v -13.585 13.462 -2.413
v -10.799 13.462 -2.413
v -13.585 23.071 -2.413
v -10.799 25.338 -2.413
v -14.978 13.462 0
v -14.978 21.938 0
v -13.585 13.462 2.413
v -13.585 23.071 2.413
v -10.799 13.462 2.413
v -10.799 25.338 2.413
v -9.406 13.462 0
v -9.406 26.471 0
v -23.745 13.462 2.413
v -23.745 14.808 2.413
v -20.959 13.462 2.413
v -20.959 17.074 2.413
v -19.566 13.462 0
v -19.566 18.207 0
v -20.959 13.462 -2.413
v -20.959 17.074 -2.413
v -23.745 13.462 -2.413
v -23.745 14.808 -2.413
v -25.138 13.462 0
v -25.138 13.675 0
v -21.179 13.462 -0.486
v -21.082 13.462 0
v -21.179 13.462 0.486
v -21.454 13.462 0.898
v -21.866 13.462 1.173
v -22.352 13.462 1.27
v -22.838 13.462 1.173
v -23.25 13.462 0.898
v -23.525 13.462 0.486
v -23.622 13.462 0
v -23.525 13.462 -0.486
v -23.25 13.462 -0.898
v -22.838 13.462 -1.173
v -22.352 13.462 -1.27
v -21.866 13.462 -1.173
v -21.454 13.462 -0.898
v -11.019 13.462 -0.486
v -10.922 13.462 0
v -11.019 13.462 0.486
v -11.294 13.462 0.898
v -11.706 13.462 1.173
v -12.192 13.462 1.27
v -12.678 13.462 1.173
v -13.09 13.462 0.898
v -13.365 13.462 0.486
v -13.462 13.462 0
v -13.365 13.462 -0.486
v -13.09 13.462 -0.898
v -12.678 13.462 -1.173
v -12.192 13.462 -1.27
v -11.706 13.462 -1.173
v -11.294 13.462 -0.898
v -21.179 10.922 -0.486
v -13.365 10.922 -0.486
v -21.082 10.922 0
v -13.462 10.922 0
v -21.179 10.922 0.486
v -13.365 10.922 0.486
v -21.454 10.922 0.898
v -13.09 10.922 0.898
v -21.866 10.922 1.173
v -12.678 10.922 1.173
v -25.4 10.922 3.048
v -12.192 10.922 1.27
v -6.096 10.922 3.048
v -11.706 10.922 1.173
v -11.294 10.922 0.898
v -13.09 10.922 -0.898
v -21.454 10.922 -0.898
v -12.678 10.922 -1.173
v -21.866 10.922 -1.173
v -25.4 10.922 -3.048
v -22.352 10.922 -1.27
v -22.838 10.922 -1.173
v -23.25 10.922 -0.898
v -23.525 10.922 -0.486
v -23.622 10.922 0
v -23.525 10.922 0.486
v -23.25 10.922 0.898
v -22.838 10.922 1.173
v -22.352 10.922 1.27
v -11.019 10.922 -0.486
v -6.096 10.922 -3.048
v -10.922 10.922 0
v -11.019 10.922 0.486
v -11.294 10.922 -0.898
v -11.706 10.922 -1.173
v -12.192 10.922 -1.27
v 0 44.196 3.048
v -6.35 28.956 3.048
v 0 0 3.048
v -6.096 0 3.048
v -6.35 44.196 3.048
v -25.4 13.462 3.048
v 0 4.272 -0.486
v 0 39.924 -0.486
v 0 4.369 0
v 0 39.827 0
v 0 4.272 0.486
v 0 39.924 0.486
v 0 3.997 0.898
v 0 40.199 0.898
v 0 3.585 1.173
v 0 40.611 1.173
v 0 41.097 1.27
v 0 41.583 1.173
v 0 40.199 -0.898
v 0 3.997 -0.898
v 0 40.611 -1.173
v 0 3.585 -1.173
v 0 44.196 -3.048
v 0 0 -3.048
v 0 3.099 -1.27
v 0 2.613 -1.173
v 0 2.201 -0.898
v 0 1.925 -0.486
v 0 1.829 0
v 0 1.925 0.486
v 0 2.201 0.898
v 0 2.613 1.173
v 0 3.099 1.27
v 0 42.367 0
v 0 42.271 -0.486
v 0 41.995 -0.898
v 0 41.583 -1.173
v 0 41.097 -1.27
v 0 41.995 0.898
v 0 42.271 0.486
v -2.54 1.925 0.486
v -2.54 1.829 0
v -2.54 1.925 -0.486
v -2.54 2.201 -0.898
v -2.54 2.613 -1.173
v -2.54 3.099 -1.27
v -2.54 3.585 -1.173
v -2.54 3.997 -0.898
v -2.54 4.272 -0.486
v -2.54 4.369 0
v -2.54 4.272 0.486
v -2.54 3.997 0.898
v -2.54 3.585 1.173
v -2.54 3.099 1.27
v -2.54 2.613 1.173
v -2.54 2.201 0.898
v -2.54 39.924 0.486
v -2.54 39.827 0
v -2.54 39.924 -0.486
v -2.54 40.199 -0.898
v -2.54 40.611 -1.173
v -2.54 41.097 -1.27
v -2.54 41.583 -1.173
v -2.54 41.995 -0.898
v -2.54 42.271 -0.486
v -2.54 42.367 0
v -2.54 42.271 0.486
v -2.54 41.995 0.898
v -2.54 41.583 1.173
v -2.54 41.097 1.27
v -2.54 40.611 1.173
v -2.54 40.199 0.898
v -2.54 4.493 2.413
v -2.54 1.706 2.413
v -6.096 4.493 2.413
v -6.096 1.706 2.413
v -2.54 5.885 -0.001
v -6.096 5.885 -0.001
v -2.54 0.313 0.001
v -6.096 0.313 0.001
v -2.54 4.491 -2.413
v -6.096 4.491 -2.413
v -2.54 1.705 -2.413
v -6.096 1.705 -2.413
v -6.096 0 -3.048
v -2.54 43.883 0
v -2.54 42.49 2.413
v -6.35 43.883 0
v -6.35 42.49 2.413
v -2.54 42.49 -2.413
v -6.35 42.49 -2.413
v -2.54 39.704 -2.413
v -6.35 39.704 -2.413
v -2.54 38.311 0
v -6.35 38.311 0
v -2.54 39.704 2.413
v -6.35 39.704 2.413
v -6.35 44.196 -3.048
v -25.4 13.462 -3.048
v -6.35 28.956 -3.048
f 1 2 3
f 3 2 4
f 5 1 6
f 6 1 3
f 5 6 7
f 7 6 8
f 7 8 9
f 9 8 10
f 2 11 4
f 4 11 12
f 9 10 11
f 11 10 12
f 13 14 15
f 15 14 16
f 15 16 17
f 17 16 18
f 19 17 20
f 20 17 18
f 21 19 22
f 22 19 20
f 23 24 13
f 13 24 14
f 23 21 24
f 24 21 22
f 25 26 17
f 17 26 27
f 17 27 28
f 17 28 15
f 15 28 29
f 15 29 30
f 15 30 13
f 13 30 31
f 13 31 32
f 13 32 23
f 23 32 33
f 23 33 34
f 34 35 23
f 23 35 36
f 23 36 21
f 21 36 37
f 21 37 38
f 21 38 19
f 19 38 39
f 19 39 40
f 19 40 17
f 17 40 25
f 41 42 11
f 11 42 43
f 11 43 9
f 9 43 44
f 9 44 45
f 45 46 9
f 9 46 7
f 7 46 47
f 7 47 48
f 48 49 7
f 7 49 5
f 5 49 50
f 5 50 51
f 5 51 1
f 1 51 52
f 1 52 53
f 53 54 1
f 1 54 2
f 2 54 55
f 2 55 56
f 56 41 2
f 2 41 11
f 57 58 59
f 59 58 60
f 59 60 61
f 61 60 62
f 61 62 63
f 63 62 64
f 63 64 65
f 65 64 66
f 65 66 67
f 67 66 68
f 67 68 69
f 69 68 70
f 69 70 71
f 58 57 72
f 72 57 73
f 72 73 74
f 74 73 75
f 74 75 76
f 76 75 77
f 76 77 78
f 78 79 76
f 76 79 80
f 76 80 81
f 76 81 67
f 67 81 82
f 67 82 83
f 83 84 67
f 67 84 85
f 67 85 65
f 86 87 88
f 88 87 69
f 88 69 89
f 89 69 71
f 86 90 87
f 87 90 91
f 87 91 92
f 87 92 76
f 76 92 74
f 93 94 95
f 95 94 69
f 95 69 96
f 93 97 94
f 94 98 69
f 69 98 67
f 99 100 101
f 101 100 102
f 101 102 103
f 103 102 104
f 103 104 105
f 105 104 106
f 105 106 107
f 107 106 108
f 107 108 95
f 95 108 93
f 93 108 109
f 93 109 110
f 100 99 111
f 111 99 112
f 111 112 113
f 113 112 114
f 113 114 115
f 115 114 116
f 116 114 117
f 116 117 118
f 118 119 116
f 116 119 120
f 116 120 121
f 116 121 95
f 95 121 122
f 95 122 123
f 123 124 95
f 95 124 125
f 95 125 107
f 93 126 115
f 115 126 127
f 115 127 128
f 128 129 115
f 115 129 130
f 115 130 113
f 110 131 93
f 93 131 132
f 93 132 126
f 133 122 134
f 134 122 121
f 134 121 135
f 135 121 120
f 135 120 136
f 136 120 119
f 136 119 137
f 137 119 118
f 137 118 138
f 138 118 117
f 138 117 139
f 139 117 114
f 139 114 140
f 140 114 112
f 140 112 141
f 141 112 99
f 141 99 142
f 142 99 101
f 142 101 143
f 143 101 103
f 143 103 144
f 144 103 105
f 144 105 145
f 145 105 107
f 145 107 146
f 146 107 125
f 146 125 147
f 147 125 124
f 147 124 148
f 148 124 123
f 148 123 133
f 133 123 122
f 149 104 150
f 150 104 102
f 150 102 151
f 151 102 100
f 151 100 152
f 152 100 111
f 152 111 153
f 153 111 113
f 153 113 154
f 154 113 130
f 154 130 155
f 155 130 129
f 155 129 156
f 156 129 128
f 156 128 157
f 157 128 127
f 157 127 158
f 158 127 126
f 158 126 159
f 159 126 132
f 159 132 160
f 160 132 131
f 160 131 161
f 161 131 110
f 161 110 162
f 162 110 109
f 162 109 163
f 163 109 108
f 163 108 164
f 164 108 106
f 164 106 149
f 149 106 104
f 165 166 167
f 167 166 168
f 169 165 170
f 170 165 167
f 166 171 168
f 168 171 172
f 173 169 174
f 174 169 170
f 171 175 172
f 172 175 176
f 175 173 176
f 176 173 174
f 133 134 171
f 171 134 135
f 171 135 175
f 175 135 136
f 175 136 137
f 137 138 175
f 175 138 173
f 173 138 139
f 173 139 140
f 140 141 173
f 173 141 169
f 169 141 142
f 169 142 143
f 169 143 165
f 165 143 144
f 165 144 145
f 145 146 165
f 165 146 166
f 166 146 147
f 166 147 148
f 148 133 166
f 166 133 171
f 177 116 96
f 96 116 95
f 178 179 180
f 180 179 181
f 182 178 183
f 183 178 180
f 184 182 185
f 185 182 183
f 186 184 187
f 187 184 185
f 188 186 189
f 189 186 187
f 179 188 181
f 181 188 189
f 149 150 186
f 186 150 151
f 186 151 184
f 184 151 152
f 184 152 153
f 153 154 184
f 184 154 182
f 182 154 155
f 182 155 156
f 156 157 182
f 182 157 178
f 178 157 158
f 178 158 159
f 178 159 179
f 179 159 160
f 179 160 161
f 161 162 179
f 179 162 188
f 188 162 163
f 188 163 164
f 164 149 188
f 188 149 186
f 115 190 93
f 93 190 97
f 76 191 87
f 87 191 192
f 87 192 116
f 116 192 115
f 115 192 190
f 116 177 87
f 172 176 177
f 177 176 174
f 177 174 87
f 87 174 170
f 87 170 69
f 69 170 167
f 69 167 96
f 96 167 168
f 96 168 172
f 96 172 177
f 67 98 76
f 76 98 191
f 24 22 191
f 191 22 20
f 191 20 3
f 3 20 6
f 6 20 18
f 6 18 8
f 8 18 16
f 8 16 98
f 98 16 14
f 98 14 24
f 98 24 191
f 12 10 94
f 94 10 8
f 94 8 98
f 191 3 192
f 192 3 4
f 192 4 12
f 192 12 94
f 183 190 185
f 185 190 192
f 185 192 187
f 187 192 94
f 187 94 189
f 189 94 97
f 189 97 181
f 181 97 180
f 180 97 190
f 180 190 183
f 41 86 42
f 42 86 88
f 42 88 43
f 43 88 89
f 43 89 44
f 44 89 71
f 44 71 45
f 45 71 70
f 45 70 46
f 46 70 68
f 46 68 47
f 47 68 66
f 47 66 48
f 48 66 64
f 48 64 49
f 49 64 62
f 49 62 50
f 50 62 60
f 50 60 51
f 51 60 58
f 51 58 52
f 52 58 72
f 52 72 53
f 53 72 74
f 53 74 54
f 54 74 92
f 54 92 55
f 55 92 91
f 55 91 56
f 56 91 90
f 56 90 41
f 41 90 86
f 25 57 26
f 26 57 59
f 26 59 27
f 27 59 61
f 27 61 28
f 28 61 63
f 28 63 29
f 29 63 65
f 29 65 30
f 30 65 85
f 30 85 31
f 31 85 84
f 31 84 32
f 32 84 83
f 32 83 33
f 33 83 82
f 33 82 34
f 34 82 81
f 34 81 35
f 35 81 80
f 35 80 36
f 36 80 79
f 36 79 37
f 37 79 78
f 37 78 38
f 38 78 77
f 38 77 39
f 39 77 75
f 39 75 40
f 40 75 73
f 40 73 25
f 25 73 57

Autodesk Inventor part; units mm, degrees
ref_plane "YZ Plane" through (0, 0, 0) normal (1, 0, 0) x (0, 1, 0)
ref_plane "XZ Plane" through (0, 0, 0) normal (0, 1, 0) x (-1, 0, 0)
ref_plane "XY Plane" through (0, 0, 0) normal (0, 0, 1) x (1, 0, 0)
sketch "Sketch1" plane through (0, 0, 0) normal (0, 0, 1) x (1, 0, 0)
  line L0 (0, 0) -> (-6.096, 0)
  line L1 (-6.096, 0) -> (-6.096, 10.922)
  line L2 (-6.096, 10.922) -> (-25.4, 10.922)
  line L3 (-25.4, 10.922) -> (-25.4, 13.462)
  line L4 (-25.4, 13.462) -> (-6.35, 28.956)
  line L5 (-6.35, 28.956) -> (-6.35, 44.196)
  line L6 (-6.35, 44.196) -> (0, 44.196)
  line L7 (0, 44.196) -> (0, 0)
  dimension "d0" = 44.196
  dimension "d1" = 10.922
  dimension "d2" = 2.54
  dimension "d3" = 19.304
  dimension "d4" = 15.24
  dimension "d25" = 6.35
sketch "Sketch2" plane through (0, 0, 0) normal (1, 0, 0) x (0, 1, 0)
  line L0 (0, 3.048) -> (0, -3.048)
  line L1 (0, -3.048) -> (44.196, -3.048)
  line L2 (44.196, -3.048) -> (44.196, 3.048)
  line L3 (44.196, 3.048) -> (0, 3.048)
  circle A0 centre (3.0988, 0) radius 1.2762
  circle A1 centre (41.0972, 0) radius 1.2712
  line L4 (38.3109, 0) -> (39.7041, 2.413)
  line L5 (39.7041, 2.413) -> (42.4903, 2.413)
  line L6 (42.4903, 2.413) -> (43.8835, 0)
  line L7 (43.8835, 0) -> (42.4903, -2.413)
  line L8 (42.4903, -2.413) -> (39.7041, -2.413)
  line L9 (39.7041, -2.413) -> (38.3109, 0)
  line L10 (5.8851, -0.001) -> (4.4911, -2.4135)
  line L11 (4.4911, -2.4135) -> (1.7048, -2.4125)
  line L12 (1.7048, -2.4125) -> (0.3125, 0.001)
  line L13 (0.3125, 0.001) -> (1.7065, 2.4135)
  line L14 (1.7065, 2.4135) -> (4.4928, 2.4125)
  line L15 (4.4928, 2.4125) -> (5.8851, -0.001)
  point P0 (0, 0)
  dimension "d6" = 37.9984
  dimension "d7" = 3.0988
  dimension "d8" = 3.0988
  dimension "d9" = 44.196
  dimension "d10" = 4.826
  dimension "d11" = 6.096
  dimension "d12" = 3.048
  dimension "d13" = 4.826
sketch "Sketch3" plane through (0, 0, 0) normal (0, 1, 0) x (-1, 0, 0)
  line L0 (0, -3.048) -> (0, 3.048)
  line L1 (0, 3.048) -> (25.4, 3.048)
  line L2 (25.4, 3.048) -> (25.4, -3.048)
  line L3 (25.4, -3.048) -> (0, -3.048)
  circle A0 centre (22.352, 0) radius 1.27
  circle A1 centre (12.192, 0) radius 1.27
  line L4 (19.5657, 0) -> (20.9589, 2.413)
  line L5 (20.9589, 2.413) -> (23.7451, 2.413)
  line L6 (23.7451, 2.413) -> (25.1383, 0)
  line L7 (25.1383, 0) -> (23.7451, -2.413)
  line L8 (23.7451, -2.413) -> (20.9589, -2.413)
  line L9 (20.9589, -2.413) -> (19.5657, 0)
  line L10 (9.4057, 0) -> (10.7989, 2.413)
  line L11 (10.7989, 2.413) -> (13.5851, 2.413)
  line L12 (13.5851, 2.413) -> (14.9783, 0)
  line L13 (14.9783, 0) -> (13.5851, -2.413)
  line L14 (13.5851, -2.413) -> (10.7989, -2.413)
  line L15 (10.7989, -2.413) -> (9.4057, 0)
  point P0 (0, 0)
  dimension "d14" = 12.192
  dimension "d15" = 10.16
  dimension "d16" = 3.048
  dimension "d17" = 2.54
  dimension "d18" = 4.826
  dimension "d19" = 4.826
extrude "Extrusion1" add sketch "Sketch1" along normal mid plane 6.096
ref_plane "Work Plane1" through (-6.35, 28.956, 3.048) normal (-1, 0, 0) x (0, 0, 1)
extrude "Extrusion2" cut sketch "Sketch2" along normal blind 3.81 from surface at -6.35 contours A1 | L4 L5 L6 L7 L8 L9
extrude "Extrusion3" cut sketch "Sketch2" along normal blind 3.81 from surface at -6.35 contours A0 | L10 L11 L12 L13 L14 L15
hole "Hole1" at (0, 3.0988, 0) at (0, 41.0972, 0) direction (-1, 0, 0) diameter 2.54 end through all
ref_plane "Work Plane2" through (-25.4, 13.462, -3.048) normal (0, -1, 0) x (1, 0, 0)
extrude "Extrusion4" cut sketch "Sketch3" along normal blind 15.24 from surface at 13.462 contours A0 | A1 | L4 L5 L6 L7 L8 L9 | L10 L11 L12 L13 L14 L15
hole "Hole2" at (-22.352, 0, 0) at (-12.192, 0, 0) direction (0, 1, 0) diameter 2.54 end through all
properties part number "dispBracket"
